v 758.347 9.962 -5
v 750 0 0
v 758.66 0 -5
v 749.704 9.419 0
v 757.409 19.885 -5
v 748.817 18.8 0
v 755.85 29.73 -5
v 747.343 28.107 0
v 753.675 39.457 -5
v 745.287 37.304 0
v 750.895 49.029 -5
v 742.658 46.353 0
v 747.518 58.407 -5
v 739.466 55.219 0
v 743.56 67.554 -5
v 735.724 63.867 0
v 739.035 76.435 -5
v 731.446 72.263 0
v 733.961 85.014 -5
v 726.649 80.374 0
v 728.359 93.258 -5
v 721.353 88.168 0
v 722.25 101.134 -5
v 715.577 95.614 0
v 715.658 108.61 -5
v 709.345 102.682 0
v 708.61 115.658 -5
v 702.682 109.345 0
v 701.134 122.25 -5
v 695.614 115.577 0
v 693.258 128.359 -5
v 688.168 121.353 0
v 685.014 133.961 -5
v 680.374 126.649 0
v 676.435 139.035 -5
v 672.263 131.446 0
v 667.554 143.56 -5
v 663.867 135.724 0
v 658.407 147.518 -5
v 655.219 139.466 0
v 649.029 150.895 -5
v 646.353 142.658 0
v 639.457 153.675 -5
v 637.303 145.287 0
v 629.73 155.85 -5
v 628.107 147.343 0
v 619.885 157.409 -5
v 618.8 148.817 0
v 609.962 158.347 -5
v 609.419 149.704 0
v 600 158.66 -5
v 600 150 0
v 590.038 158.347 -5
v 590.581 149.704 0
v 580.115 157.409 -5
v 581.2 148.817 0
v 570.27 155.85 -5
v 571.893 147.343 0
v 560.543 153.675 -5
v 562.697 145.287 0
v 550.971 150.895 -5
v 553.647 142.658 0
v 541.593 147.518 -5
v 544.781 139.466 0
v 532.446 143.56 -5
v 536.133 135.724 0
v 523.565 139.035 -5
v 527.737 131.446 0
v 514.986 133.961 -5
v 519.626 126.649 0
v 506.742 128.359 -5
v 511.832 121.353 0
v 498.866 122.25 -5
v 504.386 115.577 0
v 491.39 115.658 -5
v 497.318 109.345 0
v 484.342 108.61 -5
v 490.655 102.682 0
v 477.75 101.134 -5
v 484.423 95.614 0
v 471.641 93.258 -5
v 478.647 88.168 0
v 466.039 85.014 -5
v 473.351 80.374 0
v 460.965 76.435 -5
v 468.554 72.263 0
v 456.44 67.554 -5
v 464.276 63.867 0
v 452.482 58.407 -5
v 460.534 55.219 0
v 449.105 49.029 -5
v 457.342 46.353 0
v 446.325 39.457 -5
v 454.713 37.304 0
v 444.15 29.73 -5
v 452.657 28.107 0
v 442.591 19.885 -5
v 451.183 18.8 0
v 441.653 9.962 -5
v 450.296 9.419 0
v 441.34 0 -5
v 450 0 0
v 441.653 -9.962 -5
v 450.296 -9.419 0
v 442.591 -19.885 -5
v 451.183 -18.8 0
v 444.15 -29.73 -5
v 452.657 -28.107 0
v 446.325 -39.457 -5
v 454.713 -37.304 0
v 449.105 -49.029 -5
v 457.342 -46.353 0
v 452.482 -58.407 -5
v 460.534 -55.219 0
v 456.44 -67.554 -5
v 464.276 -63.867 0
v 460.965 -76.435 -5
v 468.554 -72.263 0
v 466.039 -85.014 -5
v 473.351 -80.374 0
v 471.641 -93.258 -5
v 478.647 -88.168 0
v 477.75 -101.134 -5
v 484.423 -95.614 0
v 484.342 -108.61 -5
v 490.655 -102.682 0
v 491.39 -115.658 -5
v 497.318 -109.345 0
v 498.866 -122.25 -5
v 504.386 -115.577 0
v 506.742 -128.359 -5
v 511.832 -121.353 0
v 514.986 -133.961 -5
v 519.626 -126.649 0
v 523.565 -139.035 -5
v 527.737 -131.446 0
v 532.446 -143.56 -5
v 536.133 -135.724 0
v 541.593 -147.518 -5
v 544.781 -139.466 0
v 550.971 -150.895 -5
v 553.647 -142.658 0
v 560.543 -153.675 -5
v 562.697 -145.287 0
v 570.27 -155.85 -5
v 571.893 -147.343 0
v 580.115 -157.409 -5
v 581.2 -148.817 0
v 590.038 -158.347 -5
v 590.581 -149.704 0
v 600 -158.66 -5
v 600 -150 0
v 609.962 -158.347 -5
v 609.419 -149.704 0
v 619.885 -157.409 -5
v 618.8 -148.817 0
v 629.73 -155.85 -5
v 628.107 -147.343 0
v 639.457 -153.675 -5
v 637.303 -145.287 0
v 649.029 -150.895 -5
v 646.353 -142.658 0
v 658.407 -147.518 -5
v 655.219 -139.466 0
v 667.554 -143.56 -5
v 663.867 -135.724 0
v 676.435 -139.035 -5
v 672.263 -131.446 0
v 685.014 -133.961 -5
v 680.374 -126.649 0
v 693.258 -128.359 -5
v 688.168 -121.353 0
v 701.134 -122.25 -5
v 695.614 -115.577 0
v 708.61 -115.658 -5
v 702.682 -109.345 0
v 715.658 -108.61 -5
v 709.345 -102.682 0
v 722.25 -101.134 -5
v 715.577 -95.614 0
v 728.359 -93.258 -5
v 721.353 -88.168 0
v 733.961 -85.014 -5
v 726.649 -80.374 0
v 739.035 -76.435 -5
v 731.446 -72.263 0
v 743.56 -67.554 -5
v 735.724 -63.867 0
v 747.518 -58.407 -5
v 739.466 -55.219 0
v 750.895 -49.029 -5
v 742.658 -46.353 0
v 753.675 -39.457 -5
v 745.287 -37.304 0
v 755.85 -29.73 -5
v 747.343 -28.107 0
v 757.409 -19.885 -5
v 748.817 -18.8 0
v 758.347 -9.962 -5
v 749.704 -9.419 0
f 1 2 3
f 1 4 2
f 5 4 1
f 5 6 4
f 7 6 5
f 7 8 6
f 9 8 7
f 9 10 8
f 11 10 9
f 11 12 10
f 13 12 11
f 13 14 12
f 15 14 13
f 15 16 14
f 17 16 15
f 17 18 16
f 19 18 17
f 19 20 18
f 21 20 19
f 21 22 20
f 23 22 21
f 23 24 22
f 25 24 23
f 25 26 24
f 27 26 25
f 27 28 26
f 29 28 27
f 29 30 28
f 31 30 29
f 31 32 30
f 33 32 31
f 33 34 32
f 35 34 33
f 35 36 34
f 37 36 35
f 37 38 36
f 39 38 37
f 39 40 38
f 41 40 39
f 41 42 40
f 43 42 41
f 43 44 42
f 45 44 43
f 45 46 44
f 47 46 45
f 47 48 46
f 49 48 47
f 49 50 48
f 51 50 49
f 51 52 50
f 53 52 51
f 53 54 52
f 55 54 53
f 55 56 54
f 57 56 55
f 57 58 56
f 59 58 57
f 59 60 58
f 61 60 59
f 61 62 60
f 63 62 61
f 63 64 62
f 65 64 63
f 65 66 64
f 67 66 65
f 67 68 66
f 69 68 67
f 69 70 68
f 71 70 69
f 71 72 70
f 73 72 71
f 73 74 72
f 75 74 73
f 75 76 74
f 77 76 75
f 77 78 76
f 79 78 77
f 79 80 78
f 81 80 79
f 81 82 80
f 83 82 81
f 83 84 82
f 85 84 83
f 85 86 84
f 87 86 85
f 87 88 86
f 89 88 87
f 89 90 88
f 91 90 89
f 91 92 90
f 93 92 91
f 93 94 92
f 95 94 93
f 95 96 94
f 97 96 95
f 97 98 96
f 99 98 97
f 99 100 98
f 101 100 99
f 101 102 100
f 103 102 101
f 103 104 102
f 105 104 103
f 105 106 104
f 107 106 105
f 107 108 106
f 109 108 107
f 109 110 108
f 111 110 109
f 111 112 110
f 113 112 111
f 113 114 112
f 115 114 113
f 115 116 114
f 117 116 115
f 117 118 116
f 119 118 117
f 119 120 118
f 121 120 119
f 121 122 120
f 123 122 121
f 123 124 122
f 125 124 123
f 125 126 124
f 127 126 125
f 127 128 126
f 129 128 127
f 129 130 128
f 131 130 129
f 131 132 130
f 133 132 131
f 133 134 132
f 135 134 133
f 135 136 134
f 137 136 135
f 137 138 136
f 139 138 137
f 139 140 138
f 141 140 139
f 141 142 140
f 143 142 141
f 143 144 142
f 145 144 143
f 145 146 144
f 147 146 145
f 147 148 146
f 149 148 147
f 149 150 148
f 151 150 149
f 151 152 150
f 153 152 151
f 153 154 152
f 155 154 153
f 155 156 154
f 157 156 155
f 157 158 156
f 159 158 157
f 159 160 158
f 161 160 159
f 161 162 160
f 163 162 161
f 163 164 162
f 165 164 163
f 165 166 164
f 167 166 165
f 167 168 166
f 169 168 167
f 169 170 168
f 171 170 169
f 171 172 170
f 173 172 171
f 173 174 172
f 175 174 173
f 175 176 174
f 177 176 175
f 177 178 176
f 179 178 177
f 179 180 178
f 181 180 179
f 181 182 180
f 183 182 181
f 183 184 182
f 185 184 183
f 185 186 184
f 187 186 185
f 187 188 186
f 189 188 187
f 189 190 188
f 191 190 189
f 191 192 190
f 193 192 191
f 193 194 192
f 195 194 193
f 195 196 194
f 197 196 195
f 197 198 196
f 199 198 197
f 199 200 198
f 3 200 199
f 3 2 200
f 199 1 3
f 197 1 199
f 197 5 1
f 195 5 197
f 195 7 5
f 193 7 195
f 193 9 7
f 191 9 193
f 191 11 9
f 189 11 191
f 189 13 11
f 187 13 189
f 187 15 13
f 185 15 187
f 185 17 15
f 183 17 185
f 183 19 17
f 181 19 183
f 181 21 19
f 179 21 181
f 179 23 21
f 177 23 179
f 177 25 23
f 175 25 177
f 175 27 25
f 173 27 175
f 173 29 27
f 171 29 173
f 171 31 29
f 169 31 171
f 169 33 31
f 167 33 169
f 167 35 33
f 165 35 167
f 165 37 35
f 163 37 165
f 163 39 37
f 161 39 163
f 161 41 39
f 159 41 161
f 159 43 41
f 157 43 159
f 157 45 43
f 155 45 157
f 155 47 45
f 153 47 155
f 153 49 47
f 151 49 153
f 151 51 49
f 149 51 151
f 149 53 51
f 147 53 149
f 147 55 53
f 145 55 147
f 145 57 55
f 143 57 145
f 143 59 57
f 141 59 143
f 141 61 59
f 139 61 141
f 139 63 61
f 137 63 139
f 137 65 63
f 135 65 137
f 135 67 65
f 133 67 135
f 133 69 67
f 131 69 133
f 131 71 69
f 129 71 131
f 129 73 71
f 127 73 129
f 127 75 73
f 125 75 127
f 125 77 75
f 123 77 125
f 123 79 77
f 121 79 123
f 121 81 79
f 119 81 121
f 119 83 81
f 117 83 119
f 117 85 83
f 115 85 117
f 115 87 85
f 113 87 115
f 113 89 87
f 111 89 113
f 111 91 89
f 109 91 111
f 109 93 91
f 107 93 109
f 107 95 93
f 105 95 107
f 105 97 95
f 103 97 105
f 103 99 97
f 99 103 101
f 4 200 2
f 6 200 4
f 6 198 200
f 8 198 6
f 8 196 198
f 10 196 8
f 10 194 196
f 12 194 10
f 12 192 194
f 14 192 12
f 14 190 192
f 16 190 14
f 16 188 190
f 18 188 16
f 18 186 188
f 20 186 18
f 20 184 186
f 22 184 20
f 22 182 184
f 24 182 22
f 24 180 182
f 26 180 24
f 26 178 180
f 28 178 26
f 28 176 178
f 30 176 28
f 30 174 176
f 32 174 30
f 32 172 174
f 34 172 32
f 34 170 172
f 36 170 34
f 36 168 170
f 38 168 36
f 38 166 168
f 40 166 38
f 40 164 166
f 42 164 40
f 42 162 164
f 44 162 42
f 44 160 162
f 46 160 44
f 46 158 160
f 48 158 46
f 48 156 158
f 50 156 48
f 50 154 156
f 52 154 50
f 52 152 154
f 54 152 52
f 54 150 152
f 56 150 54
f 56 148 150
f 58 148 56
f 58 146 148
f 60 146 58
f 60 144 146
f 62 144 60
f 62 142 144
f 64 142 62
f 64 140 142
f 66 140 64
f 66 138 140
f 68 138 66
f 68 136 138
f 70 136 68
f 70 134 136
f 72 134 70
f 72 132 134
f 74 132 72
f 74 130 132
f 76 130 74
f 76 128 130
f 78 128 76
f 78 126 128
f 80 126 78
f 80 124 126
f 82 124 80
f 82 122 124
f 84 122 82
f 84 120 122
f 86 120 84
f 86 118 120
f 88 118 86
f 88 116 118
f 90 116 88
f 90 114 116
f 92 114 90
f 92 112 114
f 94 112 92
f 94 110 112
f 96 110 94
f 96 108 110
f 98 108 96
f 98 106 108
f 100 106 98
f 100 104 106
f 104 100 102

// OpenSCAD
$fn = 100;

translate([600, 0, 0])
    rotate([0, 0, 0])
        translate([0, 0, -5])
            cylinder(5, 158.66, 150, false);
